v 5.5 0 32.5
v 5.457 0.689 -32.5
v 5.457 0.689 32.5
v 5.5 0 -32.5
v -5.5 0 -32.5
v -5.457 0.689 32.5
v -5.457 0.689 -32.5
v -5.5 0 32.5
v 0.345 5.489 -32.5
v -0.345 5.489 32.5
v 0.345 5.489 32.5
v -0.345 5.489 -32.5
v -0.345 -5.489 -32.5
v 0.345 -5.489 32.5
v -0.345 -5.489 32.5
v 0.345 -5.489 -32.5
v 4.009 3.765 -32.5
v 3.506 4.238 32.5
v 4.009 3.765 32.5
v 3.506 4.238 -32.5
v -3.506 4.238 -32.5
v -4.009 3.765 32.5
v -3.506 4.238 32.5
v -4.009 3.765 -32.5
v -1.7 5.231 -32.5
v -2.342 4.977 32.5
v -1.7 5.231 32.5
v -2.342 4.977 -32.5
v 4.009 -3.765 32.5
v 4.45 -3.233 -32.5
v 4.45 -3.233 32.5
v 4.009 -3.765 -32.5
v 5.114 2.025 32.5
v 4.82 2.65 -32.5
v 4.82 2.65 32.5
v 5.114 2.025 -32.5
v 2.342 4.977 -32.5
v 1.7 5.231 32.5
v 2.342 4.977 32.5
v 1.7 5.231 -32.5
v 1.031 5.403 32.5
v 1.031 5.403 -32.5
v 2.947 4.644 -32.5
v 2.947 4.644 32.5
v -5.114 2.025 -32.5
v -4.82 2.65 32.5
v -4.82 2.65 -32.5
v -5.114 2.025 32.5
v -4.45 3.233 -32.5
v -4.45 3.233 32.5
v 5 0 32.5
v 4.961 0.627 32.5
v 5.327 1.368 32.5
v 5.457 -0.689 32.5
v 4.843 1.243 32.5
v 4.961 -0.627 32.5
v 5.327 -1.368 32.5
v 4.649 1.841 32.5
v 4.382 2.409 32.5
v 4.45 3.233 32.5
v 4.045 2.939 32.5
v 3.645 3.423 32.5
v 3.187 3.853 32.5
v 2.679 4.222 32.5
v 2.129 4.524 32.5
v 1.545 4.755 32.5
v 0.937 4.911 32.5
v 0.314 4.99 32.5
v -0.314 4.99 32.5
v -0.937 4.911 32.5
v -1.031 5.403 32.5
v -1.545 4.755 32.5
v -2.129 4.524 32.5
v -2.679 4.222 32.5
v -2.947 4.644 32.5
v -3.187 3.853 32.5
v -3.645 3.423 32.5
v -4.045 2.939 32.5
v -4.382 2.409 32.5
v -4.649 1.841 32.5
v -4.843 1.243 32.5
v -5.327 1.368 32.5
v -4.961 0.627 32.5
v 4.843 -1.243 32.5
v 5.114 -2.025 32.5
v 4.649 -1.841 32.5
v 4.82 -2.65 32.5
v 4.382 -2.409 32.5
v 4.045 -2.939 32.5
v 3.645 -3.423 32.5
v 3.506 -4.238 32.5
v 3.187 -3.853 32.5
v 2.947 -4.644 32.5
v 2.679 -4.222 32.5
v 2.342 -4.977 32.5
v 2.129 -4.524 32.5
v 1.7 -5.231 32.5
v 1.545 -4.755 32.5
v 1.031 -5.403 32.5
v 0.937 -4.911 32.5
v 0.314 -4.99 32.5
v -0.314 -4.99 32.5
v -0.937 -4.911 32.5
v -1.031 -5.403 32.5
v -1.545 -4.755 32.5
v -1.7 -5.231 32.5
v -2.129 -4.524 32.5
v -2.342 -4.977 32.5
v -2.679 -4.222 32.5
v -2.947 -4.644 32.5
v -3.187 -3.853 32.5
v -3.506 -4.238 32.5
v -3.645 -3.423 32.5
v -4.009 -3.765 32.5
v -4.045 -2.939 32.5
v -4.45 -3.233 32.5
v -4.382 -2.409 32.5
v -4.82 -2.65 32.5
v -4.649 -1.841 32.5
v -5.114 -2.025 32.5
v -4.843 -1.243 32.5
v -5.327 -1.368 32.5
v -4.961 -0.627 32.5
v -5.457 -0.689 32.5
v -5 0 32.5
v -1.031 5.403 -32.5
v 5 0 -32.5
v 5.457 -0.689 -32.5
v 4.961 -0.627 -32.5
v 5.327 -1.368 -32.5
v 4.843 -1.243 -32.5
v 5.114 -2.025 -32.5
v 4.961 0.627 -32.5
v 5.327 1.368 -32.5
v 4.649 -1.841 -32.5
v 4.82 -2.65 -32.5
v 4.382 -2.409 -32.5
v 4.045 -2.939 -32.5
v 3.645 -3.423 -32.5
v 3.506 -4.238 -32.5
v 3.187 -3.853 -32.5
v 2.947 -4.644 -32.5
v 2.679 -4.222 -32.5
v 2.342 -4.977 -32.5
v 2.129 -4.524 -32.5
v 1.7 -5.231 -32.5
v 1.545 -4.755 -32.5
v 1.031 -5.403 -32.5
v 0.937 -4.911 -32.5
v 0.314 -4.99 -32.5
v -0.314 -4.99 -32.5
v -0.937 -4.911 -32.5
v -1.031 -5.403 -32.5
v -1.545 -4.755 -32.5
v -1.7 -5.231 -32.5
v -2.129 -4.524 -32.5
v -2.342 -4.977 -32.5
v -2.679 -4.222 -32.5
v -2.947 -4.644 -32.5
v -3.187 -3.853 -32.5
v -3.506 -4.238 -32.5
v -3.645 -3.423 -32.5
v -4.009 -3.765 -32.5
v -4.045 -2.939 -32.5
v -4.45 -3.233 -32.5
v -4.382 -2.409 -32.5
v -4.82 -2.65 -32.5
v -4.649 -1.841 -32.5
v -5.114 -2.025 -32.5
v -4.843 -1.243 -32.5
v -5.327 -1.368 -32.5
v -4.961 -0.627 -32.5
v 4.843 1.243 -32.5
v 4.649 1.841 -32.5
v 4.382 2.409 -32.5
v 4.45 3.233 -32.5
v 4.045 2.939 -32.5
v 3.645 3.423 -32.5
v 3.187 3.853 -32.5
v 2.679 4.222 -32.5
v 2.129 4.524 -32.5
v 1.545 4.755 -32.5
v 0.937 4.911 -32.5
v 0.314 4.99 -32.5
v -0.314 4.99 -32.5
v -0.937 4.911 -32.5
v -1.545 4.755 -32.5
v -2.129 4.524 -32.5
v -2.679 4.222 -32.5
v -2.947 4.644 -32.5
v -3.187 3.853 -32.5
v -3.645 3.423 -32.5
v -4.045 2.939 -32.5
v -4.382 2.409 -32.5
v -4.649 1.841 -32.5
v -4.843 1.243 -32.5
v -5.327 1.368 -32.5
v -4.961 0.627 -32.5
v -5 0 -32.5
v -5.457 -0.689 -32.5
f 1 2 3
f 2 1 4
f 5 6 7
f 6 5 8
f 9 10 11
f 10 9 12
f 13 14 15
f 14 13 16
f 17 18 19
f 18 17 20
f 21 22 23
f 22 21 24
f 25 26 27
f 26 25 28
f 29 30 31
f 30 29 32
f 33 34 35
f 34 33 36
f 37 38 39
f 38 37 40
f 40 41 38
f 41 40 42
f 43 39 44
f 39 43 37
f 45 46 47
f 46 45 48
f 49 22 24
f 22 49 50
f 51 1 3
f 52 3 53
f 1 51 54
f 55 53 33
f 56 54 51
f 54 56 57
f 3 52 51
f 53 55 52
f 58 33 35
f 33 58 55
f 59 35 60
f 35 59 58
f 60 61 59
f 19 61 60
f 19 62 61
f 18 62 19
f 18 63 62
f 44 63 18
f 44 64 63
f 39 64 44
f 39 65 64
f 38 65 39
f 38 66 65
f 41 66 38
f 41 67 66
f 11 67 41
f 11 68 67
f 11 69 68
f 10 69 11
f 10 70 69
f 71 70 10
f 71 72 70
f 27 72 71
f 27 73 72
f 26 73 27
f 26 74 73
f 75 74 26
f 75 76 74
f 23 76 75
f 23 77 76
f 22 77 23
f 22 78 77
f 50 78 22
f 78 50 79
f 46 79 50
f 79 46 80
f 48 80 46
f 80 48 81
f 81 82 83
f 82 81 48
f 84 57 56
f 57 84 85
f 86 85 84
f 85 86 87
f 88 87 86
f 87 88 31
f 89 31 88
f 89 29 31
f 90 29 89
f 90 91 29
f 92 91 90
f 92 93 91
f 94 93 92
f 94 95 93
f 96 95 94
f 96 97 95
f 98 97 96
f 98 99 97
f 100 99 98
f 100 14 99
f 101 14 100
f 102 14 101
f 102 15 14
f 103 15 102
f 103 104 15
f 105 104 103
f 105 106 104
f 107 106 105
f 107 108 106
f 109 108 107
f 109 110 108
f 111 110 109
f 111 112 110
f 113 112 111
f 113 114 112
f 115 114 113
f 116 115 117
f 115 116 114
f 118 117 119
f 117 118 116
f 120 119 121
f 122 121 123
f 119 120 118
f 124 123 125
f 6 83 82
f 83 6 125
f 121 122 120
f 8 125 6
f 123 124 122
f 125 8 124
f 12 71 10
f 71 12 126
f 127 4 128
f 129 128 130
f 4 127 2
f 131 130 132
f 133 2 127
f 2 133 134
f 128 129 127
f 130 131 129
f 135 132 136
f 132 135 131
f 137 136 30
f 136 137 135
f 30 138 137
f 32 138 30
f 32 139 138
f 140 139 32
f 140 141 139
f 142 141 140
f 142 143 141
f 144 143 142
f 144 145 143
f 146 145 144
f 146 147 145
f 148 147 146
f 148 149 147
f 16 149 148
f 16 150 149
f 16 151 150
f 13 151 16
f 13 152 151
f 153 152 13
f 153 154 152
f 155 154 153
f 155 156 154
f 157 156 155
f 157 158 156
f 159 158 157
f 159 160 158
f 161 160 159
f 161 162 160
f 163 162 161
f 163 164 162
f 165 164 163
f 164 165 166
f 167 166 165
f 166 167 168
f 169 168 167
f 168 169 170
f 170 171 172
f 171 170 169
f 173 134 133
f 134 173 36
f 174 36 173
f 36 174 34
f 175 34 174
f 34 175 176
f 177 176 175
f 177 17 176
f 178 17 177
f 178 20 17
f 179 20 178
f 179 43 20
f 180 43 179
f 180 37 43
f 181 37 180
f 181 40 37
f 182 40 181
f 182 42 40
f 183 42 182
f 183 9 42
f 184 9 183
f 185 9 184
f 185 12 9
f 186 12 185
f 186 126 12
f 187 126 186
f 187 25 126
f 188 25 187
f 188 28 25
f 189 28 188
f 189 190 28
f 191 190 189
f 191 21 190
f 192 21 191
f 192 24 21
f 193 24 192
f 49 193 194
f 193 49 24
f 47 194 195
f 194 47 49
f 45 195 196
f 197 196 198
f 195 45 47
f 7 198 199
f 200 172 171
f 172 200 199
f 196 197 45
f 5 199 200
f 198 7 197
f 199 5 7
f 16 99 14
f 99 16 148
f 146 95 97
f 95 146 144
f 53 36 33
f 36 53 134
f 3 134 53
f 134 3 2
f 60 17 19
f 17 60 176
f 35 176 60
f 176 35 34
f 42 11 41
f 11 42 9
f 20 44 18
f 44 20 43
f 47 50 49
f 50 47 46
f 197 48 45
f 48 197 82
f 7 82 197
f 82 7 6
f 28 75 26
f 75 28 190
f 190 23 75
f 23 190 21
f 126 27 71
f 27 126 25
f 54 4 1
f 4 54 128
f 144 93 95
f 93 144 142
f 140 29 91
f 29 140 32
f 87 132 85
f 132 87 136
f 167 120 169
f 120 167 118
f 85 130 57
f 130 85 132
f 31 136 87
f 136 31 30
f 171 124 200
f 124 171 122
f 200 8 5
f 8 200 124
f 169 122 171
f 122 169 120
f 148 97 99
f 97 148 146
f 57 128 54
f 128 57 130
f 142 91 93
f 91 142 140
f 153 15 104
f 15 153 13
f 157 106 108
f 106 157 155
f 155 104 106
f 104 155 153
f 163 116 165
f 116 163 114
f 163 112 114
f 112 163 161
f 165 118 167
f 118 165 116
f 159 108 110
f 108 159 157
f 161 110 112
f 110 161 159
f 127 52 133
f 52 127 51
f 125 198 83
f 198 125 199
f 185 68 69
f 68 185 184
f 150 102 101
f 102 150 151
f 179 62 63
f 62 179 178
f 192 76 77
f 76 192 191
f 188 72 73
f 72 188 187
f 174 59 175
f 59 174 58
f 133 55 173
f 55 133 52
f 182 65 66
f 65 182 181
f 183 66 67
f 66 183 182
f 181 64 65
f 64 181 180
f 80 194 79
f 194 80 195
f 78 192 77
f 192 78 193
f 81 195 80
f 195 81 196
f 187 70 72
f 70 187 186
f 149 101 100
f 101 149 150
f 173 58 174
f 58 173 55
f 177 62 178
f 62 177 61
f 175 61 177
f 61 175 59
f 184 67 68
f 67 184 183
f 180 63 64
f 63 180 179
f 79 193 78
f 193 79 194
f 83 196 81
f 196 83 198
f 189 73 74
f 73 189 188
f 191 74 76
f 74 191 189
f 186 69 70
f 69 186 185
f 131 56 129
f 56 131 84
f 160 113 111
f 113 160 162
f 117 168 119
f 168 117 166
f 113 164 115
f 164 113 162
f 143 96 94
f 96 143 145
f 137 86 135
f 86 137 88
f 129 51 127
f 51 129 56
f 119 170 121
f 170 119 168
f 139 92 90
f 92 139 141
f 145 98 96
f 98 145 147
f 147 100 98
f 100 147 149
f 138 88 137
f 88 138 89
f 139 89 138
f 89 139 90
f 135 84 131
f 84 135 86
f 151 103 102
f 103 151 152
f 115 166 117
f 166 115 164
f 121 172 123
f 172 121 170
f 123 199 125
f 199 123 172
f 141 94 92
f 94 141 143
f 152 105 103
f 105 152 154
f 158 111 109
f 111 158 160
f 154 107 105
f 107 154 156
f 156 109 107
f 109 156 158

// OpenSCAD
$fn = 50;


difference() {
	union() {
		translate(v = [0, 0, -32.5000000000]) {
			cylinder(h = 65, r = 5.5000000000);
		}
	}
	union() {
		translate(v = [0, 0, -100.0000000000]) {
			cylinder(h = 200, r = 5);
		}
	}
}
